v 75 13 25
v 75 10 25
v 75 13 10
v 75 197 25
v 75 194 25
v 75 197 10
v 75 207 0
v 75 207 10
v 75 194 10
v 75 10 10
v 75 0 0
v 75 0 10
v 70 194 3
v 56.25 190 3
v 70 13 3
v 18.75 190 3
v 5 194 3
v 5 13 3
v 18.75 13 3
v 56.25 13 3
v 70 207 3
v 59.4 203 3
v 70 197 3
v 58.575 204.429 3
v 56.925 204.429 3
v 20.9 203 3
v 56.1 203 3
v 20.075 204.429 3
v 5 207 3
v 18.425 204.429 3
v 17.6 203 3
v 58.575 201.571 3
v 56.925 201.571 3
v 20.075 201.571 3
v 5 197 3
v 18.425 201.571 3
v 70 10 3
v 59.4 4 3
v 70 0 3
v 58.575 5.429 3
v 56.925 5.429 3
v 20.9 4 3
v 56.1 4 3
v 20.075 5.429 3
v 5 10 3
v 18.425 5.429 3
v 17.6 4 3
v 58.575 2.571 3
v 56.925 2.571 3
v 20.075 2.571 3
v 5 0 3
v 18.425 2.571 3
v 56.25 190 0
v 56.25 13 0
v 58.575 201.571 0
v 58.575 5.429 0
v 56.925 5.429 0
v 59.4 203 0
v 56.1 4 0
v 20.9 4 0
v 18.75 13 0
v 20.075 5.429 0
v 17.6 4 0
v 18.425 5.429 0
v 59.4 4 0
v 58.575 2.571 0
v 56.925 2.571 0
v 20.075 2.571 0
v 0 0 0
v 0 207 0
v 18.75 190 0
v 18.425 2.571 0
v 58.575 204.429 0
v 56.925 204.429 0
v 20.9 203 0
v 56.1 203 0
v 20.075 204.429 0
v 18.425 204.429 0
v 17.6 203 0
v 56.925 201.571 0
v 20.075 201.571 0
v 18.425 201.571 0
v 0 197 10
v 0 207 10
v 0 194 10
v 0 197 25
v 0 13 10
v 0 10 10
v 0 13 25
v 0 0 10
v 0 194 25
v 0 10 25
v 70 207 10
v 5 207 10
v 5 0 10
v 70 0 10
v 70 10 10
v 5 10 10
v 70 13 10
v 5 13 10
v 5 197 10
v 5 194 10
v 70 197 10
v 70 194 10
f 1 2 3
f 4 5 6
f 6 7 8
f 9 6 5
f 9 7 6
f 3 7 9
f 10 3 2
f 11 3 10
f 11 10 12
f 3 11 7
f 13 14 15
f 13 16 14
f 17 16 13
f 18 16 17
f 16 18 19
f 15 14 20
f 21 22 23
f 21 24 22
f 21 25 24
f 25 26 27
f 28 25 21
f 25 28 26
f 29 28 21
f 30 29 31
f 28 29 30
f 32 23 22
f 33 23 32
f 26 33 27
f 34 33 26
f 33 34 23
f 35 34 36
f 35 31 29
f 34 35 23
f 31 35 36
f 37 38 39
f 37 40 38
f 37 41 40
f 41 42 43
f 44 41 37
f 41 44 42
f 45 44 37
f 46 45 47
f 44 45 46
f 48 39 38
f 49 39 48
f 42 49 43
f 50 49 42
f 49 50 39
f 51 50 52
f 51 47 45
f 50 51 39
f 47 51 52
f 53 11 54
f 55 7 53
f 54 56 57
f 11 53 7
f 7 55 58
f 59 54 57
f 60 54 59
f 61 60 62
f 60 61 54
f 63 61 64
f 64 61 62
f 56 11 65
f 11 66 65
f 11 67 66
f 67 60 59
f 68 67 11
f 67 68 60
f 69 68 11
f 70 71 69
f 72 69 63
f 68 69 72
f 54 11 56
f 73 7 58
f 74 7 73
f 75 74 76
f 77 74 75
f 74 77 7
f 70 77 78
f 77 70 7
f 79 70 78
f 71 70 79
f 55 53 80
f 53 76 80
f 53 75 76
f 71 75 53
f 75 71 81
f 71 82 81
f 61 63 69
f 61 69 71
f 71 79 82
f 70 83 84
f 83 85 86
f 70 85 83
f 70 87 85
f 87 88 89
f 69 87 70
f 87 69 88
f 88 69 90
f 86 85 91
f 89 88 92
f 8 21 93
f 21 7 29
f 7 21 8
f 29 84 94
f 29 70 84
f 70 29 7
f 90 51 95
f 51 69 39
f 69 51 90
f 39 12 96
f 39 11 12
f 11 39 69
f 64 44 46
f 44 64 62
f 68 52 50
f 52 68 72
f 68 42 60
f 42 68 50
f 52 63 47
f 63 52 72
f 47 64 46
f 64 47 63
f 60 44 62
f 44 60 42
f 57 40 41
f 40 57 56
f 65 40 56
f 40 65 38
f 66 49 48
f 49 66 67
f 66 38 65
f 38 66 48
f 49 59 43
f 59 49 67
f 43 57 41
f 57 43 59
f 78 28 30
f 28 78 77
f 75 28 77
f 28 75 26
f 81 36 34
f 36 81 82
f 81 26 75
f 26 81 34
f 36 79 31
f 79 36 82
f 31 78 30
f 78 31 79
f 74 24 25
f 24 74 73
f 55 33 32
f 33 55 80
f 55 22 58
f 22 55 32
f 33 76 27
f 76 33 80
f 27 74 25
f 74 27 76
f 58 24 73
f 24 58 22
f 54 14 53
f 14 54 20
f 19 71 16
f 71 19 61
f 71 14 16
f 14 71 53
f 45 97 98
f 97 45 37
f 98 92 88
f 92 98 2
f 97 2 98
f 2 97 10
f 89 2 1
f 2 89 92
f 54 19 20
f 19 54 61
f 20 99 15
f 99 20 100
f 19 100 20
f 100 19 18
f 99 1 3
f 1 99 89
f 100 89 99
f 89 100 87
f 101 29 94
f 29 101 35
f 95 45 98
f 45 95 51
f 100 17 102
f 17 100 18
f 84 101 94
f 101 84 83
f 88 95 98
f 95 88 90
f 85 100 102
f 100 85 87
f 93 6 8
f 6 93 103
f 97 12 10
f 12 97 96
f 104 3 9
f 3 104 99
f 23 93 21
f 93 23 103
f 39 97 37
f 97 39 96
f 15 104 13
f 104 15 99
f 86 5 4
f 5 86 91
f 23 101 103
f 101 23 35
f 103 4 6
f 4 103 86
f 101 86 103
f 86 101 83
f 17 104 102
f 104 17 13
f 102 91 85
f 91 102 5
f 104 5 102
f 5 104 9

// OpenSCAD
// Ethernet Side wall

// Want at lest 2 times the width to support
base_x = 75;

// top Stabalizer
translate([0, 10, 0]){
    cube([75,3,25]);
}

difference(){

// Define the base
cube([base_x, 207,3]);

    // Top Stabalizer screw hold
    translate([19.25,4,3]){
        rotate([180,0,0]){
            cylinder(4, 1.65, 1.65);
        }
    }


    // Top Stabalizer screw hold
    translate([57.75,4,3]){
        rotate([180,0,0]){
            cylinder(4, 1.65, 1.65);
        }
    }


    // Bottom Stabalizer screw hold
    translate([19.25,203,3]){
        rotate([180,0,0]){
            cylinder(4, 1.65, 1.65);
        }
    }


    // Bottom Stabalizer screw hold
    translate([57.75,203,3]){
        rotate([180,0,0]){
            cylinder(4, 1.65, 1.65);
        }
    }

// Ethernet cord gap
translate([base_x/4, 10, 0]){
    cube([base_x/2, 180, 3]);
}

}


// Ethernet side Rails
cube([5,207,10]);
translate([70,0,0]){
    cube([5,207,10]);
}

// Bottom Stabalizer
translate([0, 194, 0]){
    cube([75,3,25]);
}
